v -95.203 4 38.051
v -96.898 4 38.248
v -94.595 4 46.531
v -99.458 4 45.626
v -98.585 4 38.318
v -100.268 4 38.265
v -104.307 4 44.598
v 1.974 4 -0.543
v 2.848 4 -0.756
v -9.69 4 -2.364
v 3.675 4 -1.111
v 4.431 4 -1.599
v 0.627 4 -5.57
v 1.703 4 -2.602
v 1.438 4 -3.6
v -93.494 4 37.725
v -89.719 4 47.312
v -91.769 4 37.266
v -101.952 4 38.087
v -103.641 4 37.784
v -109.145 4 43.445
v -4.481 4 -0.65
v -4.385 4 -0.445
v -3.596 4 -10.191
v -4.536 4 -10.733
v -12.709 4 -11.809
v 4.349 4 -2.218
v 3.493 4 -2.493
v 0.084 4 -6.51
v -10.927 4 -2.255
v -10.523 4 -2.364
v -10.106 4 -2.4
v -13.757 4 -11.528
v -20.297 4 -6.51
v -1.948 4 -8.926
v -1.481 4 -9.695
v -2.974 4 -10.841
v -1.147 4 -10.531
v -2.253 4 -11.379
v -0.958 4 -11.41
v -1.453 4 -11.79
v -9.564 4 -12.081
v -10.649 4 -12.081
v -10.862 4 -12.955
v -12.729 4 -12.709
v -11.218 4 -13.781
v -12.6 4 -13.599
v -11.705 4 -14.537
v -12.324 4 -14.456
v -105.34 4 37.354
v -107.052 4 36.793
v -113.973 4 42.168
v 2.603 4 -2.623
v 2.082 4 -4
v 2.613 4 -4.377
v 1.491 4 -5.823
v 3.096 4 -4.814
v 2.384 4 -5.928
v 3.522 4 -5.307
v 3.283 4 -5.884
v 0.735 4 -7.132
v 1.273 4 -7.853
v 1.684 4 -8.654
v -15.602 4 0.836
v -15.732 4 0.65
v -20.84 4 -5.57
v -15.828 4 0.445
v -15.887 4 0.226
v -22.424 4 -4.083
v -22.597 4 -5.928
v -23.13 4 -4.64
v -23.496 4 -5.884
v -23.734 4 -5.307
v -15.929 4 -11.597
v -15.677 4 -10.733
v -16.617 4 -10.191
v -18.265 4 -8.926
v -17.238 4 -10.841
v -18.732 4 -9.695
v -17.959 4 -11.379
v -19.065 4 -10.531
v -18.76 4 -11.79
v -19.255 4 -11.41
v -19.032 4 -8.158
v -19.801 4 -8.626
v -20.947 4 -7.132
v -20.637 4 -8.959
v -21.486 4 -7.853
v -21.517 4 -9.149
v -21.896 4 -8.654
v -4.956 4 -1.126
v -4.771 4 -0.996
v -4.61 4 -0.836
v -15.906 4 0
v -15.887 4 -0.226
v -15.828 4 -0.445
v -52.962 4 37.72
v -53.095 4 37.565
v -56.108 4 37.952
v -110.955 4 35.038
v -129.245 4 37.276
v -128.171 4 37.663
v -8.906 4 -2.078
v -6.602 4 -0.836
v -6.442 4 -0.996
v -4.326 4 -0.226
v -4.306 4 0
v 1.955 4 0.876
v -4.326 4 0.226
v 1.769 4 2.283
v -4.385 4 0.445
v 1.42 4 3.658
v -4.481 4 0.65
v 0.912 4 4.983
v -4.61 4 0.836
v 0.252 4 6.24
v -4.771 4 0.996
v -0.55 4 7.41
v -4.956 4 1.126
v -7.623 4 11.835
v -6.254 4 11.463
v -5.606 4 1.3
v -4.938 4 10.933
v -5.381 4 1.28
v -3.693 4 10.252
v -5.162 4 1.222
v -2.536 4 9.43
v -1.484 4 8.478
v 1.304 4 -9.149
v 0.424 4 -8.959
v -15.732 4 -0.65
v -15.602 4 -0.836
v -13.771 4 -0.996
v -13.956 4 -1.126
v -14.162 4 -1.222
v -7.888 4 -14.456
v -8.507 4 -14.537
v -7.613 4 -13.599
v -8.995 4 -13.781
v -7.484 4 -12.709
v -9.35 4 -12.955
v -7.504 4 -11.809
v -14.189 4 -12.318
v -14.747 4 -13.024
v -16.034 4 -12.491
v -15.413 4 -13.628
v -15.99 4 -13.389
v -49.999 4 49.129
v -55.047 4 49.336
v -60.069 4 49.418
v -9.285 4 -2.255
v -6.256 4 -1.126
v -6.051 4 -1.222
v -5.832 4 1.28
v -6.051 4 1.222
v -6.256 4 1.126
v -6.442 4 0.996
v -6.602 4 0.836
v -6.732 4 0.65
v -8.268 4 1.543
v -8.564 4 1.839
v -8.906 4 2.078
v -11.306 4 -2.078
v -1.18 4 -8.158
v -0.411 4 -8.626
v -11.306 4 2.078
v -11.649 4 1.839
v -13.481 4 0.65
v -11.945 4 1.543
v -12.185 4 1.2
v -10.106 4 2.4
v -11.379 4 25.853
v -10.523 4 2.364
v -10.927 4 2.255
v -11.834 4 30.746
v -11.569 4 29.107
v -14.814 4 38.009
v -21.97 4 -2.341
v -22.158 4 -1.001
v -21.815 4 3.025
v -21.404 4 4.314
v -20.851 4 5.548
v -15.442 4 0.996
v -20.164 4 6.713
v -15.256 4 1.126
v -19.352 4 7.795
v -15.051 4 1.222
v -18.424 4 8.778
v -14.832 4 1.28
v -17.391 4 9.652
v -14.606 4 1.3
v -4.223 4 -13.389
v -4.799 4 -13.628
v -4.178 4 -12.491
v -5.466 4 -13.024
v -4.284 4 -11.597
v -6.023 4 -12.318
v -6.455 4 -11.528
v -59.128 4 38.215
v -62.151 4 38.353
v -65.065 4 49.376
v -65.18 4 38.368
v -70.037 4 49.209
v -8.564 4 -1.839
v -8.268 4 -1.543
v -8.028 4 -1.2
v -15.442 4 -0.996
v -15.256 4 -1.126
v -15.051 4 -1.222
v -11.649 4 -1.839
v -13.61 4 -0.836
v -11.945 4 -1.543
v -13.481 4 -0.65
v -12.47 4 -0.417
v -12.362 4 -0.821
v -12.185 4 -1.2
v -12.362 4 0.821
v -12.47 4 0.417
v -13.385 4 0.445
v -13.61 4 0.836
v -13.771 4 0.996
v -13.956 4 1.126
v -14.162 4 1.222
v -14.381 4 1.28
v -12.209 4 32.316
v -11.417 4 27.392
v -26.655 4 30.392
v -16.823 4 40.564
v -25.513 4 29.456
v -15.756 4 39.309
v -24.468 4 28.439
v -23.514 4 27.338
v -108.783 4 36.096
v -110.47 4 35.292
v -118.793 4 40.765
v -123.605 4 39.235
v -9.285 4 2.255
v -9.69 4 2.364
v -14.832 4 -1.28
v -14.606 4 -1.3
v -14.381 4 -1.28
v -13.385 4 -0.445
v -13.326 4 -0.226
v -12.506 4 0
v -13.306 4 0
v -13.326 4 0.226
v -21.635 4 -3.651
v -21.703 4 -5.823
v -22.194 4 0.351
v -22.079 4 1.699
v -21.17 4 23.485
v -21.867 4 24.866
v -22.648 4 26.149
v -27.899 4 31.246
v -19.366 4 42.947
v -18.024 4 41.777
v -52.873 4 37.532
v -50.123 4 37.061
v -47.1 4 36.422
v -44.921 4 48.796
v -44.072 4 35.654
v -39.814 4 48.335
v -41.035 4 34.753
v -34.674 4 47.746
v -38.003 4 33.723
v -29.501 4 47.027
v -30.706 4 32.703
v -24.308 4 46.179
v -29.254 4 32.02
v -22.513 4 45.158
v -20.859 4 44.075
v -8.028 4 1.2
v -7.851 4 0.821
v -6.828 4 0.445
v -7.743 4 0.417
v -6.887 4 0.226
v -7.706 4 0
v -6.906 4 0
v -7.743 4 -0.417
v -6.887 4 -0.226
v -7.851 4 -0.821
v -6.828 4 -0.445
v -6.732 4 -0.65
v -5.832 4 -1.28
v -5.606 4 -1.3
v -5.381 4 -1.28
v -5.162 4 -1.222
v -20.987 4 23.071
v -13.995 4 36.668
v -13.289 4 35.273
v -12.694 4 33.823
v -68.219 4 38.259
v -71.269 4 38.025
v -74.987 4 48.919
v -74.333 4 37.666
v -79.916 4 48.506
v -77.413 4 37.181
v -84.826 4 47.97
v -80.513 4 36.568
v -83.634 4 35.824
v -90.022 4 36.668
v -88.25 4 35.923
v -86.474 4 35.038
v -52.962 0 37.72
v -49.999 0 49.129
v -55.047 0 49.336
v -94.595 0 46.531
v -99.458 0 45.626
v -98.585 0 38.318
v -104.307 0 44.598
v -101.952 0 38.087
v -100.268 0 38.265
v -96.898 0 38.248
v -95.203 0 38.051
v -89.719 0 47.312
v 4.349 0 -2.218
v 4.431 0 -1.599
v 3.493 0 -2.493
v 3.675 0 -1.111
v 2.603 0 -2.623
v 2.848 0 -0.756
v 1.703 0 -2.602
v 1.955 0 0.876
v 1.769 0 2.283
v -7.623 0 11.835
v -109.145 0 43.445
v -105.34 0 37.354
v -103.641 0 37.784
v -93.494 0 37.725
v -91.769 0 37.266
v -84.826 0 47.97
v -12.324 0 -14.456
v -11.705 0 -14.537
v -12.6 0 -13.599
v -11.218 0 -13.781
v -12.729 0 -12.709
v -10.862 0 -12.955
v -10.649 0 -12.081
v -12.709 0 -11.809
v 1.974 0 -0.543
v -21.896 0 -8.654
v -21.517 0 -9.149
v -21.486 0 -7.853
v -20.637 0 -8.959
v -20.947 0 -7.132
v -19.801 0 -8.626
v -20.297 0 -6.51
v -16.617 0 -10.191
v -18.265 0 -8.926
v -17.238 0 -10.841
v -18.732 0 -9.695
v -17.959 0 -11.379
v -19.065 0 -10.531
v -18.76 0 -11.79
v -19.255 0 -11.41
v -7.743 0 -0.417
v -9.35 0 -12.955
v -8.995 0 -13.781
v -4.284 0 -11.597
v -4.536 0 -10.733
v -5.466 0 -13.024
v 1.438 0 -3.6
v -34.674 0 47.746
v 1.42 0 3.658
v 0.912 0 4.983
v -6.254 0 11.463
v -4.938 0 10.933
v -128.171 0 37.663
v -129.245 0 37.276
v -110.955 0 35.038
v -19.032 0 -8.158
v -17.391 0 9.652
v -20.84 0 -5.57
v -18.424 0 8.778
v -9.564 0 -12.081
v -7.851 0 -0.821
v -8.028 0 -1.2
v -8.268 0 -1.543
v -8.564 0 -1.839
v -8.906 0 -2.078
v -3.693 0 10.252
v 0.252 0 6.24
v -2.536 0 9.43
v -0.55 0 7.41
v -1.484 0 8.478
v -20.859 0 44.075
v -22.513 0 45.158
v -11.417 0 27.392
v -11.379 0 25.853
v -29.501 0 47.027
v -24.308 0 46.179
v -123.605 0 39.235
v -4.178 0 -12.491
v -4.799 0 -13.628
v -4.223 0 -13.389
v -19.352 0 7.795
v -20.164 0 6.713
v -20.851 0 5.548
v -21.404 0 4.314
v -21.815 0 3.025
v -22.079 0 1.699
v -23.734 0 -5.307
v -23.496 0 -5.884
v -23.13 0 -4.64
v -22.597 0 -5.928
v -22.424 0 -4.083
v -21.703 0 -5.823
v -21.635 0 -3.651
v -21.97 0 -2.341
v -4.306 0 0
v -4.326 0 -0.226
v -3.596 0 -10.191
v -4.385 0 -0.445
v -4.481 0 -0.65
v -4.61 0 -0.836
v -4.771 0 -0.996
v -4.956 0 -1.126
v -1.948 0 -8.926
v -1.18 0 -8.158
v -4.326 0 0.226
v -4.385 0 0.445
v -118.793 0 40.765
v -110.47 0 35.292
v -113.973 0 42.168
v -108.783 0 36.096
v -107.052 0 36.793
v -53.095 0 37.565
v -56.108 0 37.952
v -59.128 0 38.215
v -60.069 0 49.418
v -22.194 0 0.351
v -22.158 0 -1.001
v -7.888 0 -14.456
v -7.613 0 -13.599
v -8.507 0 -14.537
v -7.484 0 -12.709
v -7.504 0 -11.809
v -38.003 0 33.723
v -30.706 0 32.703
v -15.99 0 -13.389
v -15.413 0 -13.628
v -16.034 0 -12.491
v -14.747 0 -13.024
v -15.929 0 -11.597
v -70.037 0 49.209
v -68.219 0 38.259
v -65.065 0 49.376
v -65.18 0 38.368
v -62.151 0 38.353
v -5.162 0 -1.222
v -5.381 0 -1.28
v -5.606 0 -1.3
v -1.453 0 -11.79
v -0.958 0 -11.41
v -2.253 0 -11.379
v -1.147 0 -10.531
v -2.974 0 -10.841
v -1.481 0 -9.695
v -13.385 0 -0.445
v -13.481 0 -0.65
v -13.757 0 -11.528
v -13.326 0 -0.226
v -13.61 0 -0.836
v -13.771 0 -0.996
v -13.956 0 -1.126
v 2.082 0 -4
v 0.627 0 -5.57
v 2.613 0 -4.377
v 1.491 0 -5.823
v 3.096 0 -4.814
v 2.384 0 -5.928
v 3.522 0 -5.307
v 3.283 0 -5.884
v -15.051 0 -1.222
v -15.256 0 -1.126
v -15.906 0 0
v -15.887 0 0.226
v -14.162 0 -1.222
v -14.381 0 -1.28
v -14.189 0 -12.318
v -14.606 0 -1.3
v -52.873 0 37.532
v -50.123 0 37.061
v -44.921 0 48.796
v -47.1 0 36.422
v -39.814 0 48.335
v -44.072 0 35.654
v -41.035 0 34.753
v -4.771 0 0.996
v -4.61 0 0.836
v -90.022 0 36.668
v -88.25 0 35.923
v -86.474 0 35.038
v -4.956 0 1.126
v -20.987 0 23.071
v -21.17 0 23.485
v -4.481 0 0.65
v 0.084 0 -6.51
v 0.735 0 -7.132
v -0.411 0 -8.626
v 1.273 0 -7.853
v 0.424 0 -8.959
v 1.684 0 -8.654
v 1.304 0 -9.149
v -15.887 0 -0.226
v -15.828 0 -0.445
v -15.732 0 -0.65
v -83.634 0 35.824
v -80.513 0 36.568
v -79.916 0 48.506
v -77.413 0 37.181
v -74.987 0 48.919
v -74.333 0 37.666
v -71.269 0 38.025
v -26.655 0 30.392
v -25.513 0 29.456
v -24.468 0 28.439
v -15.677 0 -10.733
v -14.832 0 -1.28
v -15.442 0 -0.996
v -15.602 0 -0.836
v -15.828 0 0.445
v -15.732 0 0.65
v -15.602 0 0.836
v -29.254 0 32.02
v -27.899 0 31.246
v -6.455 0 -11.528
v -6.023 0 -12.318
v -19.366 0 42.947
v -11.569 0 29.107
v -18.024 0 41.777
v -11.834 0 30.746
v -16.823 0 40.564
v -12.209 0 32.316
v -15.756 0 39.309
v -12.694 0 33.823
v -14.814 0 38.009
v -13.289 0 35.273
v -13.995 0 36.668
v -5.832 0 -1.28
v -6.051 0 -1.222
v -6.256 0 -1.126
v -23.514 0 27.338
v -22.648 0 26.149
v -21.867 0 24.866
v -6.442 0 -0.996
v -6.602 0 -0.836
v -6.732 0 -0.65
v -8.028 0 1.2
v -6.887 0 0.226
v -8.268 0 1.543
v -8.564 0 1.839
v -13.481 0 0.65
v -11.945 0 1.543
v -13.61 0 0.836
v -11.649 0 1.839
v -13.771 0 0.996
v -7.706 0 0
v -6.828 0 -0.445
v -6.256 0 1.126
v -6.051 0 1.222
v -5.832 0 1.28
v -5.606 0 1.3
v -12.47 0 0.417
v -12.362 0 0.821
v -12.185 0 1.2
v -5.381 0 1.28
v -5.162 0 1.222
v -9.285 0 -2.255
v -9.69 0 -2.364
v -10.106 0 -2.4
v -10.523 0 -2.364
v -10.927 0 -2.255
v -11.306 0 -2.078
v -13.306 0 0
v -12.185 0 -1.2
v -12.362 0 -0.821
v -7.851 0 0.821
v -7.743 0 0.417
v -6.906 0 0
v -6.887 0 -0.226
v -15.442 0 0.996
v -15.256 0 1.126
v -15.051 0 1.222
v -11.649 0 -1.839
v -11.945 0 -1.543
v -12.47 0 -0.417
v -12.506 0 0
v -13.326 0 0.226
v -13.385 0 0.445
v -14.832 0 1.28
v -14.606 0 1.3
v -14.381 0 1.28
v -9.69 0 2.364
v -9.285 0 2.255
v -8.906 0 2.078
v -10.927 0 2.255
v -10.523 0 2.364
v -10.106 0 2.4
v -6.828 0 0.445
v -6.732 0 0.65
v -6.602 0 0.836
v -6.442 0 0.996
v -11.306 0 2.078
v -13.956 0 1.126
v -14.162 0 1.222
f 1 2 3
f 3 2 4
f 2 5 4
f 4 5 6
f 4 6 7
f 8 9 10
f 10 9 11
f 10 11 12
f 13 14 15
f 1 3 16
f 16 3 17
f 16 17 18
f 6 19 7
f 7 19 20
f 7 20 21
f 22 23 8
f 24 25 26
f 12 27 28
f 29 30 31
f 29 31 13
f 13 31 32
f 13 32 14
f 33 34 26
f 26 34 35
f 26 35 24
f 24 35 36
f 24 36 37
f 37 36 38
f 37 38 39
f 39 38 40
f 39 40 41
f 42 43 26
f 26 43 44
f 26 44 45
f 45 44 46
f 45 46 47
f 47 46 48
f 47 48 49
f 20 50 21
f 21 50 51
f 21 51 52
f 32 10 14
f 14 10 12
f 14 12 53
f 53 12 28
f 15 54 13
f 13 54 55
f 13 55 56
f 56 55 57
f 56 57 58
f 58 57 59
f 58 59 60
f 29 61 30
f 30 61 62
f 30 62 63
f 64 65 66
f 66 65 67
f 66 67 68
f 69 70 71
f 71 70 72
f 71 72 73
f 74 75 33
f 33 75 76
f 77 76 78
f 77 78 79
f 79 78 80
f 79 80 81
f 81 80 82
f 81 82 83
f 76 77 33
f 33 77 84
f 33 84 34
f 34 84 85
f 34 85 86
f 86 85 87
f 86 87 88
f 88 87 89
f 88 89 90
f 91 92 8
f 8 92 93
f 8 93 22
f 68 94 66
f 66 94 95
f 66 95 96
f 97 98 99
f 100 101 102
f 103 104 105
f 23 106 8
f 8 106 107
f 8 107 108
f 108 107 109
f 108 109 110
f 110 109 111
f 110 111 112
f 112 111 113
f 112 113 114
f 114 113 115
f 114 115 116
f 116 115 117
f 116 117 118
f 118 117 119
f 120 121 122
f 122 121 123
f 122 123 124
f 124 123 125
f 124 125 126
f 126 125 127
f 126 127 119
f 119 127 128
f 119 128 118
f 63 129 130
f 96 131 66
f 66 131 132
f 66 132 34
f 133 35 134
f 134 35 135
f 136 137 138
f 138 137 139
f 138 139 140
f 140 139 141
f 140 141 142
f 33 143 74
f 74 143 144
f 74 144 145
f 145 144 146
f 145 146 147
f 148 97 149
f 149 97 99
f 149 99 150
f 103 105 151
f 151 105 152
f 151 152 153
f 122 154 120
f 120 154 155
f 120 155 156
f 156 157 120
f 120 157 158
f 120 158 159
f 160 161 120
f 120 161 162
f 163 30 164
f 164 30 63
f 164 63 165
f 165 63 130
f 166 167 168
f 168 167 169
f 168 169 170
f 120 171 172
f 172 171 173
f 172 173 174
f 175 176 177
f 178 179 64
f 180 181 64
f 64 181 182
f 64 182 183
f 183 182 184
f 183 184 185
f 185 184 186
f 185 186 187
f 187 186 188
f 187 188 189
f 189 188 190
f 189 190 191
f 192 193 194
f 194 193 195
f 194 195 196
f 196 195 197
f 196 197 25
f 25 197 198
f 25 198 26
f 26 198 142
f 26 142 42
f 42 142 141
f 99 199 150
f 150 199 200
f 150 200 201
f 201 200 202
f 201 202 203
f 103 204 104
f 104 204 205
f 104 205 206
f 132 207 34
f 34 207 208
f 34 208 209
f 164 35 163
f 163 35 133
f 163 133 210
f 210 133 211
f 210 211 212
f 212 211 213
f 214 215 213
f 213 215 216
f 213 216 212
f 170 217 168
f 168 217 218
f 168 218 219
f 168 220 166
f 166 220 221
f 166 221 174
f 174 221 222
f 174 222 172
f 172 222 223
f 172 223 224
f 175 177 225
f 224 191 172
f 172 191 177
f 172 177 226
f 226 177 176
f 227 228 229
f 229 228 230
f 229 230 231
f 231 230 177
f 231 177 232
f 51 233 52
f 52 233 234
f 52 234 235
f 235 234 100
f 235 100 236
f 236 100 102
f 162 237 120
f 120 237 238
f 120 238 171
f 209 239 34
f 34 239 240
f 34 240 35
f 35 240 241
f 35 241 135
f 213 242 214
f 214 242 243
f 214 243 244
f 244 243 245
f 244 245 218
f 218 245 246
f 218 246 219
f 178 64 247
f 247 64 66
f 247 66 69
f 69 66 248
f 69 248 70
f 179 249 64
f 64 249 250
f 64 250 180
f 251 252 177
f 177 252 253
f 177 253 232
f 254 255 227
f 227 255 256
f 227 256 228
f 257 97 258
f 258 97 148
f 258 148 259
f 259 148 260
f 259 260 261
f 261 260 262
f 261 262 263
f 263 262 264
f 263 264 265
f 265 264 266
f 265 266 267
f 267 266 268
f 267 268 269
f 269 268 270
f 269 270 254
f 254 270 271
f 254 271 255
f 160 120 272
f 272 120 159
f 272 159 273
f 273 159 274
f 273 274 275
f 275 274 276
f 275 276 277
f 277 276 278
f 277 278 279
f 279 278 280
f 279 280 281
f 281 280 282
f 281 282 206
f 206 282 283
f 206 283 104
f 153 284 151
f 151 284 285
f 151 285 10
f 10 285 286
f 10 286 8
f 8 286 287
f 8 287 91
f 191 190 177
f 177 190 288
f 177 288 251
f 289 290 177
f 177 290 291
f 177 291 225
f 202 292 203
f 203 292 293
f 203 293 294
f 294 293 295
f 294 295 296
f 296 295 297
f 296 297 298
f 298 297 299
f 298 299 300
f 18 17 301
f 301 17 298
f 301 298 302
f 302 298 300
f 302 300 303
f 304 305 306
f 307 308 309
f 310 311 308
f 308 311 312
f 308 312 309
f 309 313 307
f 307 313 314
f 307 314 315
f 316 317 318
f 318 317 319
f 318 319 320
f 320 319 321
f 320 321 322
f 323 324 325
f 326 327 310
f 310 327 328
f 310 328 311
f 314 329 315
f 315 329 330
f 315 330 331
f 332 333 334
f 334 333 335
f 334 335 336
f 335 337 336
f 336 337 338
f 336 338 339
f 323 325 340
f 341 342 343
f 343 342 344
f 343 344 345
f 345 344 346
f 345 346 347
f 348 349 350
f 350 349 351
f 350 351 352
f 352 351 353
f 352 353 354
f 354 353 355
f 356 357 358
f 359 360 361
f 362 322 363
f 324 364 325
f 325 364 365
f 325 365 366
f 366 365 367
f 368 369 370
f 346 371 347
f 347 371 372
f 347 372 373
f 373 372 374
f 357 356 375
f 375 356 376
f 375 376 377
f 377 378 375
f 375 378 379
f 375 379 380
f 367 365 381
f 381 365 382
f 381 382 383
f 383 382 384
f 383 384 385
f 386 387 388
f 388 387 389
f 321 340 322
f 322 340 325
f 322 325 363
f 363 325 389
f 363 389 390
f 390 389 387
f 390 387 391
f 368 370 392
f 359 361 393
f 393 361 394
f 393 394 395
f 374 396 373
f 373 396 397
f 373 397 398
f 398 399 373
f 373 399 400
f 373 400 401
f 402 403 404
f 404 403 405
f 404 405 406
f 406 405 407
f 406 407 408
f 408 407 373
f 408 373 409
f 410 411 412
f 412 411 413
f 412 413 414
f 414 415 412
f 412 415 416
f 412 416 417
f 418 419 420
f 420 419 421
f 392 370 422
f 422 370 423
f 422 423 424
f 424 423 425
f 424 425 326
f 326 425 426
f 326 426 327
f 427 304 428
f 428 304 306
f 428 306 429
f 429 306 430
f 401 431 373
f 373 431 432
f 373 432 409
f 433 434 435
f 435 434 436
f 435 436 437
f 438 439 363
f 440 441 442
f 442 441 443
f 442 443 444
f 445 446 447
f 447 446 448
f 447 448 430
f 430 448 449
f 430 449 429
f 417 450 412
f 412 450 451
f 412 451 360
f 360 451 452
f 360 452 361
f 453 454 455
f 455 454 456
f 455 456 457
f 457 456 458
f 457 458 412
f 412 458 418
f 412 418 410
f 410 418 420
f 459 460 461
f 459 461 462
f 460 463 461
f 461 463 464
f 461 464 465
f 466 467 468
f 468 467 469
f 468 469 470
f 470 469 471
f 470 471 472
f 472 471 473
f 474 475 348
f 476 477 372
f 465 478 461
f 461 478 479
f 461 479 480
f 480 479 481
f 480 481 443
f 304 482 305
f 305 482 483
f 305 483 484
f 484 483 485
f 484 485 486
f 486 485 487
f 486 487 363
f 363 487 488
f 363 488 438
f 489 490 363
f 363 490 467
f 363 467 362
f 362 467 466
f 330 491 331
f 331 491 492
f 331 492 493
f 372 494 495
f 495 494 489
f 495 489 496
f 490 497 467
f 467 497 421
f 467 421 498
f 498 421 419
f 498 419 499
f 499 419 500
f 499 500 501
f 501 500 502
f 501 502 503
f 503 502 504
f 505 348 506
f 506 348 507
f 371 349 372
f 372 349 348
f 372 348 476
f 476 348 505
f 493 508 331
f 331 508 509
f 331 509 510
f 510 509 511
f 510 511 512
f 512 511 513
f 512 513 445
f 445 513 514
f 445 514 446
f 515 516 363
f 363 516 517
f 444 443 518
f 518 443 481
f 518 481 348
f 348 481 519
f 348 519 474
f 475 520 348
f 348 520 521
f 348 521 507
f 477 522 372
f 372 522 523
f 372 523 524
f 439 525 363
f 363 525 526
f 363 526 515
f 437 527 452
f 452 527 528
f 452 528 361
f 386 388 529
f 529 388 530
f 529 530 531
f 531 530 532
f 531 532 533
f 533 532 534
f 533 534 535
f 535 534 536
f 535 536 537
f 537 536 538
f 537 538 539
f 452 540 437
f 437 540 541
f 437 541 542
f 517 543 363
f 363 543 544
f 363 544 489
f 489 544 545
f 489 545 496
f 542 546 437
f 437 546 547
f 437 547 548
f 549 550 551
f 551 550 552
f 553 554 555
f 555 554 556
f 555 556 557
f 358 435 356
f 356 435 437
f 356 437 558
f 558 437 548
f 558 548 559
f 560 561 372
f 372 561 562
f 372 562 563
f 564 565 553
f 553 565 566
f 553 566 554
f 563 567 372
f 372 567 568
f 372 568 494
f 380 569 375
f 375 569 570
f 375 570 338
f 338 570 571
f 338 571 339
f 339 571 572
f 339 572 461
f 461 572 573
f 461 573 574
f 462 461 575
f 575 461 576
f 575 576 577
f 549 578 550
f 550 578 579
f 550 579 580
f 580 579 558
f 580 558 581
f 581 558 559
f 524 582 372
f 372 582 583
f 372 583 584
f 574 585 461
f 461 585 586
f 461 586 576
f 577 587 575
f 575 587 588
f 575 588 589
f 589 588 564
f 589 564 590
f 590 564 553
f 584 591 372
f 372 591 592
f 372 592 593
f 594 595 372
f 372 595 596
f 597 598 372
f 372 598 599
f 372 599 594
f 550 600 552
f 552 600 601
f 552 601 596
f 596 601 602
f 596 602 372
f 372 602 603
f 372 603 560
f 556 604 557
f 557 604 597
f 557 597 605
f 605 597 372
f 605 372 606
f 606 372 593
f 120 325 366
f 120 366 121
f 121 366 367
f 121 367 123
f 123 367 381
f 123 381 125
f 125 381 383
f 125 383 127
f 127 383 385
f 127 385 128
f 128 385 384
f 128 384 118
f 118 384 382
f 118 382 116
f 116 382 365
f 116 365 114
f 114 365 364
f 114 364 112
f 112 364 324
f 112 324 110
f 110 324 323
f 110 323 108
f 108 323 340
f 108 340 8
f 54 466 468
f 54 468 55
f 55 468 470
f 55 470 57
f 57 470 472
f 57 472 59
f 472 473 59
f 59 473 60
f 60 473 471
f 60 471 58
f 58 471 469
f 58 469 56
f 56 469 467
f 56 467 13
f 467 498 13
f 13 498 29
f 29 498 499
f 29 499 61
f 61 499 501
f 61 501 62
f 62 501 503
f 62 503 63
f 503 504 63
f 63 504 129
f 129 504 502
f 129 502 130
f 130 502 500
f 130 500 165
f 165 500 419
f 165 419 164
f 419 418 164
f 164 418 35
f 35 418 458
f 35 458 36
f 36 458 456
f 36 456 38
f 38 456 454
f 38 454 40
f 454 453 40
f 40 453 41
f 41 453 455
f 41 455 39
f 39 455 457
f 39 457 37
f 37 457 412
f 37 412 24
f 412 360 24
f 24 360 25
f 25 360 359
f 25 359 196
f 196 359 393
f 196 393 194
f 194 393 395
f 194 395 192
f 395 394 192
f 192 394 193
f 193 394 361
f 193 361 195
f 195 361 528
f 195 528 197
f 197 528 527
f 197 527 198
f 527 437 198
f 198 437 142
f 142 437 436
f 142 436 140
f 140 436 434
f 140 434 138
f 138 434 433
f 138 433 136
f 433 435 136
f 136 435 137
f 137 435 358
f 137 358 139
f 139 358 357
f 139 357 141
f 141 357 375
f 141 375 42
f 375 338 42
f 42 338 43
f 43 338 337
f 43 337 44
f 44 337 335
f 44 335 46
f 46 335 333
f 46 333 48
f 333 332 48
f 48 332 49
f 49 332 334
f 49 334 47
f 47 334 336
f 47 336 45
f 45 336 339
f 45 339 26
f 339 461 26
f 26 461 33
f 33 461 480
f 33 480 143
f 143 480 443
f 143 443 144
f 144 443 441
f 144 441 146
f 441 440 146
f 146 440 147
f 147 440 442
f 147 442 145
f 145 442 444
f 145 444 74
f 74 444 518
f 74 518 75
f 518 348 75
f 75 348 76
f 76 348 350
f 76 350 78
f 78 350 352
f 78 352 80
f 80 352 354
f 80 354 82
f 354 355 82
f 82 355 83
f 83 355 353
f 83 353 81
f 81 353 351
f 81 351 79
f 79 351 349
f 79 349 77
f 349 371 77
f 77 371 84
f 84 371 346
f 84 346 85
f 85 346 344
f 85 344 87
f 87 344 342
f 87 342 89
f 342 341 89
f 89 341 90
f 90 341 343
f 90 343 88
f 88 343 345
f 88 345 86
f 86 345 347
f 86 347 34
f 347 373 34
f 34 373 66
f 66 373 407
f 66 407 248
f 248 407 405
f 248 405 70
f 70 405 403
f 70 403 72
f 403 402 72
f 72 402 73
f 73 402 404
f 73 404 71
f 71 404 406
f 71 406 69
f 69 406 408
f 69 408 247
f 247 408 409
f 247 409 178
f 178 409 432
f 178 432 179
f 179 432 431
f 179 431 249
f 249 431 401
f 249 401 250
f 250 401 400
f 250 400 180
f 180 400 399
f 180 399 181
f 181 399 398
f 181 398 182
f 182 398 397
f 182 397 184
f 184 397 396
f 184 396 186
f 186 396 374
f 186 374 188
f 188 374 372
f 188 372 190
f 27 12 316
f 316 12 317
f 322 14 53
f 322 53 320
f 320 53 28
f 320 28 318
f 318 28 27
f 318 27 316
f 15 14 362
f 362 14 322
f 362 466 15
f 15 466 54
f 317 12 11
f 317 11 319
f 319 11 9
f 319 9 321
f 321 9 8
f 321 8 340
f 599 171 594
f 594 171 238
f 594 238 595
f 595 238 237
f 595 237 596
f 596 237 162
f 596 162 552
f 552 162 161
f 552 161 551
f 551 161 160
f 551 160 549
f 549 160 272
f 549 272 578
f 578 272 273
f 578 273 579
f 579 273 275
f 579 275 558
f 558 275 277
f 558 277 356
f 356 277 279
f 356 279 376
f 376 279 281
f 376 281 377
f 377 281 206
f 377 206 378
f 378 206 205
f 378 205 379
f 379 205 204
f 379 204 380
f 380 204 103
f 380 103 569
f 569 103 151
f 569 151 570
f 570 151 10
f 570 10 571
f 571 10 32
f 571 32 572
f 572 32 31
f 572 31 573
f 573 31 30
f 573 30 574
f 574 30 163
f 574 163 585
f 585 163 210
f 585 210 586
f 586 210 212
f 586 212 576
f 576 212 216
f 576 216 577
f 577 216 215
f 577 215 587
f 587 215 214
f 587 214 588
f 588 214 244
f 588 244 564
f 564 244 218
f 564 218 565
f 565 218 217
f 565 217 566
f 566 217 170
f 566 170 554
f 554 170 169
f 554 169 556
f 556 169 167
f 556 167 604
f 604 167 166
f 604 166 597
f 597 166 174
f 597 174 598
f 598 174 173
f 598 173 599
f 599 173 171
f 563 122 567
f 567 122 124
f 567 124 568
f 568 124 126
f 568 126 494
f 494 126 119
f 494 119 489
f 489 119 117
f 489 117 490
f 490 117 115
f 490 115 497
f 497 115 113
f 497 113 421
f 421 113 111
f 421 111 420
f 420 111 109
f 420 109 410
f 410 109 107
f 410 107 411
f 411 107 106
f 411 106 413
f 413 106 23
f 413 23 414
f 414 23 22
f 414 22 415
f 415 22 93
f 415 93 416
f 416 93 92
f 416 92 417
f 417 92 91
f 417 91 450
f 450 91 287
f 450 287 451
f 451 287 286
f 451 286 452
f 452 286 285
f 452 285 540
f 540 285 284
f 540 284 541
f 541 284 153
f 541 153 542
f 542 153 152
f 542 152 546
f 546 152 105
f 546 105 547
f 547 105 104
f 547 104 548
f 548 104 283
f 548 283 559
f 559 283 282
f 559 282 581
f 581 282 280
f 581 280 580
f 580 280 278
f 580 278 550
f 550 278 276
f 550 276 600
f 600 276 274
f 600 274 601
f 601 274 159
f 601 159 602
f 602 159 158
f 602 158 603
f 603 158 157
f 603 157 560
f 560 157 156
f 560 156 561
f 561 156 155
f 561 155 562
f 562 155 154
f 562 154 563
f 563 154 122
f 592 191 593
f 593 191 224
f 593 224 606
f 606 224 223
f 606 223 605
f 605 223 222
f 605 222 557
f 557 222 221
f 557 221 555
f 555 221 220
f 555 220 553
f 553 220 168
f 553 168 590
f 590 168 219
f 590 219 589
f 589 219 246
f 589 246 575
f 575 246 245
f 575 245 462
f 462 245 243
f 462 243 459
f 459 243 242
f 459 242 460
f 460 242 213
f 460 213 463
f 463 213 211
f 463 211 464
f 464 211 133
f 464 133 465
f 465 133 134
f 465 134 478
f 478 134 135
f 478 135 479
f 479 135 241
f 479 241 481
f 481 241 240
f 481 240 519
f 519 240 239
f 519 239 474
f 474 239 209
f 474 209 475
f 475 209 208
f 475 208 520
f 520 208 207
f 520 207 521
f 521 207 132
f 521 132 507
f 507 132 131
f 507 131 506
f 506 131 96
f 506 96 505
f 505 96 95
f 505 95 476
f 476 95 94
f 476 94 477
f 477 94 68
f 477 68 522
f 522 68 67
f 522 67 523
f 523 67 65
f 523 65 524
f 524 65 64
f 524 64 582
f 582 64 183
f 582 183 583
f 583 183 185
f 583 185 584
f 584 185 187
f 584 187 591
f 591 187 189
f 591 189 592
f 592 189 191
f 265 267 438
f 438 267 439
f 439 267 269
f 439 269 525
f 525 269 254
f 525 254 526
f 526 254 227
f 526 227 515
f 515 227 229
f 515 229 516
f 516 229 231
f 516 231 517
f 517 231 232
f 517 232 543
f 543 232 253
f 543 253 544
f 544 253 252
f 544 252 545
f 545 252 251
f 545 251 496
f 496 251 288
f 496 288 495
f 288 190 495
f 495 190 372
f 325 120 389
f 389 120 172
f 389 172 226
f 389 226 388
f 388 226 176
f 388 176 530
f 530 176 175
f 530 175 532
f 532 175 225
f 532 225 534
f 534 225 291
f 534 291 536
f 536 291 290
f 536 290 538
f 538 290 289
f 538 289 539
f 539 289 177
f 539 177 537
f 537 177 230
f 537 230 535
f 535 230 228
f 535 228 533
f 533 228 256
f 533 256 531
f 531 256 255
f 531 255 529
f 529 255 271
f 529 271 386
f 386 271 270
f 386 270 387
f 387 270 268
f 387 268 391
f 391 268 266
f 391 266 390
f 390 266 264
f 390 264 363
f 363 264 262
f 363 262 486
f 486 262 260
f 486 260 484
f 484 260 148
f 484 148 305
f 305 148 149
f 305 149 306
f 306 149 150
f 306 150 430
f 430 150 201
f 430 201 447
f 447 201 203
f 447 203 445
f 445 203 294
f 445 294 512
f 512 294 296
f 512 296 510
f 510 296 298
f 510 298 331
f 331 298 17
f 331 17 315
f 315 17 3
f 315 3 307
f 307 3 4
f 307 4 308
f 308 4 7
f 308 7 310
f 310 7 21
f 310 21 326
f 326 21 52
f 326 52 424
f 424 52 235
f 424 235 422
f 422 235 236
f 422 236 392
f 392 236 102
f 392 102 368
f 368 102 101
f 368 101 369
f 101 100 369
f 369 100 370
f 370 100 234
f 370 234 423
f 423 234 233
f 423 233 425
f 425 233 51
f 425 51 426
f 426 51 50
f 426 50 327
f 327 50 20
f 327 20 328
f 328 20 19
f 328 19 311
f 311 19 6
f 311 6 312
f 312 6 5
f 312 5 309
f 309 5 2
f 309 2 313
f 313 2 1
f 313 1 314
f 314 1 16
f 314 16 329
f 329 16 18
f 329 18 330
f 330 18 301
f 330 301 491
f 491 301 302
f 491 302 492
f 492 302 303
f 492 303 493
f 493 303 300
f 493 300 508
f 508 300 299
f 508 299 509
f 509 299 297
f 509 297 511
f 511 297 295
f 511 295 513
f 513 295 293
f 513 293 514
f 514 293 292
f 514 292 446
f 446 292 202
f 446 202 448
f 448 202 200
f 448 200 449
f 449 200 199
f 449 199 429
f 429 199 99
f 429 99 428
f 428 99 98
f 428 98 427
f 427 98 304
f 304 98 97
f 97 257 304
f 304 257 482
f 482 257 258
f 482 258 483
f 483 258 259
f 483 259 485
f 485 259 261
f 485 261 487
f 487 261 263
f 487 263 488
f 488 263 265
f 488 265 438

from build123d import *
from build123d.topology import SkipClean

# Parameters (mm, degrees)
SKETCH1_R           = 1.5
BOSS_EXTRUDE1_DEPTH = 4
SKETCH3_R           = 1.75
BOSS_EXTRUDE2_DEPTH = 4
CUT_EXTRUDE1_START  = -4
CUT_EXTRUDE1_DEPTH  = 4
CUT_EXTRUDE2_REACH  = 49.073
SKETCH5_R           = 1.3
SKETCH5_R_2         = 2.4
BOSS_EXTRUDE3_START = -4
BOSS_EXTRUDE3_DEPTH = 4
CUT_EXTRUDE3_START  = -10
SKETCH6_3_R         = 1.75
CUT_EXTRUDE3_DEPTH  = 10


with BuildPart() as part:
    # Sketch1 → Boss-Extrude1 (new body)
    with BuildSketch(Plane(origin=(0, 0, 0), x_dir=(1, 0, 0), z_dir=(0, 1, 0))):
        with BuildLine():
            Line((20.643657446, 4), (2.081641936, 4))
            ThreePointArc((2.081641936, 4), (2.861028333, 4.588201733), (3.521749436, 5.30713988))
            ThreePointArc((3.521749436, 5.30713988), (3.405395609, 5.596745198), (3.282888305, 5.883801663))
            ThreePointArc((3.282888305, 5.883801663), (1.93527598, 5.894040025), (0.627094961, 5.57027124))
            ThreePointArc((0.627094961, 5.57027124), (0.366286148, 6.046375), (0.084372603, 6.510293938))
            ThreePointArc((0.084372603, 6.510293938), (1.018855105, 7.48132754), (1.683794586, 8.65351323))
            ThreePointArc((1.683794586, 8.65351323), (1.496450048, 8.903135899), (1.303821399, 9.148703928))
            ThreePointArc((1.303821399, 9.148703928), (-0.000522033, 8.809805691), (-1.180330337, 8.158486898))
            ThreePointArc((-1.180330337, 8.158486898), (-1.555477026, 8.550865528), (-1.947855656, 8.926012217))
            ThreePointArc((-1.947855656, 8.926012217), (-1.296536862, 10.105820521), (-0.957638625, 11.410163953))
            ThreePointArc((-0.957638625, 11.410163953), (-1.203206655, 11.602792602), (-1.452829324, 11.79013714))
            ThreePointArc((-1.452829324, 11.79013714), (-2.625015014, 11.125197659), (-3.596048616, 10.190715157))
            ThreePointArc((-3.596048616, 10.190715157), (-4.059967554, 10.472628702), (-4.536071314, 10.733437515))
            ThreePointArc((-4.536071314, 10.733437515), (-4.212302529, 12.041618533), (-4.222540891, 13.389230859))
            ThreePointArc((-4.222540891, 13.389230859), (-4.509597355, 13.511738163), (-4.799202674, 13.62809199))
            ThreePointArc((-4.799202674, 13.62809199), (-5.759348103, 12.682425791), (-6.455432668, 11.528463019))
            ThreePointArc((-6.455432668, 11.528463019), (-6.976508546, 11.680699536), (-7.503891752, 11.809396783))
            ThreePointArc((-7.503891752, 11.809396783), (-7.529737283, 13.156800143), (-7.888414517, 14.455843809))
            ThreePointArc((-7.888414517, 14.455843809), (-8.197396993, 14.499881098), (-8.507248835, 14.537314892))
            ThreePointArc((-8.507248835, 14.537314892), (-9.18992168, 13.375367565), (-9.563620196, 12.080565177))
            ThreePointArc((-9.563620196, 12.080565177), (-10.106342554, 12.09275), (-10.649064912, 12.080565177))
            ThreePointArc((-10.649064912, 12.080565177), (-11.022763428, 13.375367565), (-11.705436272, 14.537314892))
            ThreePointArc((-11.705436272, 14.537314892), (-12.015288115, 14.499881098), (-12.324270591, 14.455843809))
            ThreePointArc((-12.324270591, 14.455843809), (-12.682947825, 13.156800143), (-12.708793355, 11.809396783))
            ThreePointArc((-12.708793355, 11.809396783), (-13.236176561, 11.680699536), (-13.757252439, 11.528463019))
            ThreePointArc((-13.757252439, 11.528463019), (-14.453337005, 12.682425791), (-15.413482434, 13.62809199))
            ThreePointArc((-15.413482434, 13.62809199), (-15.703087752, 13.511738163), (-15.990144217, 13.389230859))
            ThreePointArc((-15.990144217, 13.389230859), (-16.000382579, 12.041618533), (-15.676613793, 10.733437515))
            ThreePointArc((-15.676613793, 10.733437515), (-16.152717554, 10.472628702), (-16.616636492, 10.190715157))
            ThreePointArc((-16.616636492, 10.190715157), (-17.587670094, 11.125197659), (-18.759855783, 11.79013714))
            ThreePointArc((-18.759855783, 11.79013714), (-19.009478453, 11.602792602), (-19.255046482, 11.410163953))
            ThreePointArc((-19.255046482, 11.410163953), (-18.916148245, 10.105820521), (-18.264829452, 8.926012217))
            ThreePointArc((-18.264829452, 8.926012217), (-18.657208082, 8.550865528), (-19.032354771, 8.158486898))
            ThreePointArc((-19.032354771, 8.158486898), (-20.212163074, 8.809805691), (-21.516506507, 9.148703928))
            ThreePointArc((-21.516506507, 9.148703928), (-21.709135156, 8.903135899), (-21.896479694, 8.65351323))
            ThreePointArc((-21.896479694, 8.65351323), (-21.231540213, 7.48132754), (-20.297057711, 6.510293938))
            ThreePointArc((-20.297057711, 6.510293938), (-20.578971255, 6.046375), (-20.839780068, 5.57027124))
            ThreePointArc((-20.839780068, 5.57027124), (-22.147961087, 5.894040025), (-23.495573413, 5.883801663))
            ThreePointArc((-23.495573413, 5.883801663), (-23.618080717, 5.596745198), (-23.734434544, 5.30713988))
            ThreePointArc((-23.734434544, 5.30713988), (-22.788768345, 4.346994451), (-21.634805572, 3.650909885))
            ThreePointArc((-21.634805572, 3.650909885), (-21.78704209, 3.129834008), (-21.915739337, 2.602450802))
            ThreePointArc((-21.915739337, 2.602450802), (-23.263142697, 2.576605271), (-24.562186363, 2.217928037))
            ThreePointArc((-24.562186363, 2.217928037), (-24.606223651, 1.908945561), (-24.643657446, 1.599093719))
            ThreePointArc((-24.643657446, 1.599093719), (-23.481710119, 0.916420874), (-22.186907731, 0.542722358))
            ThreePointArc((-22.186907731, 0.542722358), (-22.199092554, 0), (-22.186907731, -0.542722358))
            ThreePointArc((-22.186907731, -0.542722358), (-23.481710119, -0.916420874), (-24.643657446, -1.599093719))
            ThreePointArc((-24.643657446, -1.599093719), (-24.606223651, -1.908945561), (-24.562186363, -2.217928037))
            ThreePointArc((-24.562186363, -2.217928037), (-23.263142697, -2.576605271), (-21.915739337, -2.602450802))
            ThreePointArc((-21.915739337, -2.602450802), (-21.78704209, -3.129834008), (-21.634805572, -3.650909885))
            ThreePointArc((-21.634805572, -3.650909885), (-22.788768345, -4.346994451), (-23.734434544, -5.30713988))
            ThreePointArc((-23.734434544, -5.30713988), (-23.618080717, -5.596745198), (-23.495573413, -5.883801663))
            ThreePointArc((-23.495573413, -5.883801663), (-22.147961087, -5.894040025), (-20.839780068, -5.57027124))
            ThreePointArc((-20.839780068, -5.57027124), (-20.578971255, -6.046375), (-20.297057711, -6.510293938))
            ThreePointArc((-20.297057711, -6.510293938), (-21.231540213, -7.48132754), (-21.896479694, -8.65351323))
            ThreePointArc((-21.896479694, -8.65351323), (-21.709135156, -8.903135899), (-21.516506507, -9.148703928))
            ThreePointArc((-21.516506507, -9.148703928), (-20.212163074, -8.809805691), (-19.032354771, -8.158486898))
            ThreePointArc((-19.032354771, -8.158486898), (-18.657208082, -8.550865528), (-18.264829452, -8.926012217))
            ThreePointArc((-18.264829452, -8.926012217), (-18.916148245, -10.105820521), (-19.255046482, -11.410163953))
            ThreePointArc((-19.255046482, -11.410163953), (-19.009478453, -11.602792602), (-18.759855783, -11.79013714))
            ThreePointArc((-18.759855783, -11.79013714), (-17.587670094, -11.125197659), (-16.616636492, -10.190715157))
            ThreePointArc((-16.616636492, -10.190715157), (-16.152717554, -10.472628702), (-15.676613793, -10.733437515))
            ThreePointArc((-15.676613793, -10.733437515), (-16.000382579, -12.041618533), (-15.990144217, -13.389230859))
            ThreePointArc((-15.990144217, -13.389230859), (-15.703087752, -13.511738163), (-15.413482434, -13.62809199))
            ThreePointArc((-15.413482434, -13.62809199), (-14.453337005, -12.682425791), (-13.757252439, -11.528463019))
            ThreePointArc((-13.757252439, -11.528463019), (-13.236176561, -11.680699536), (-12.708793355, -11.809396783))
            ThreePointArc((-12.708793355, -11.809396783), (-12.682947825, -13.156800143), (-12.324270591, -14.455843809))
            ThreePointArc((-12.324270591, -14.455843809), (-12.015288115, -14.499881098), (-11.705436272, -14.537314892))
            ThreePointArc((-11.705436272, -14.537314892), (-11.022763428, -13.375367565), (-10.649064912, -12.080565177))
            ThreePointArc((-10.649064912, -12.080565177), (-10.106342554, -12.09275), (-9.563620196, -12.080565177))
            ThreePointArc((-9.563620196, -12.080565177), (-9.18992168, -13.375367565), (-8.507248835, -14.537314892))
            ThreePointArc((-8.507248835, -14.537314892), (-8.197396993, -14.499881098), (-7.888414517, -14.455843809))
            ThreePointArc((-7.888414517, -14.455843809), (-7.529737283, -13.156800143), (-7.503891752, -11.809396783))
            ThreePointArc((-7.503891752, -11.809396783), (-6.976508546, -11.680699536), (-6.455432668, -11.528463019))
            ThreePointArc((-6.455432668, -11.528463019), (-5.759348103, -12.682425791), (-4.799202674, -13.62809199))
            ThreePointArc((-4.799202674, -13.62809199), (-4.509597355, -13.511738163), (-4.222540891, -13.389230859))
            ThreePointArc((-4.222540891, -13.389230859), (-4.212302529, -12.041618533), (-4.536071314, -10.733437515))
            ThreePointArc((-4.536071314, -10.733437515), (-4.059967554, -10.472628702), (-3.596048616, -10.190715157))
            ThreePointArc((-3.596048616, -10.190715157), (-2.625015014, -11.125197659), (-1.452829324, -11.79013714))
            ThreePointArc((-1.452829324, -11.79013714), (-1.203206655, -11.602792602), (-0.957638625, -11.410163953))
            ThreePointArc((-0.957638625, -11.410163953), (-1.296536862, -10.105820521), (-1.947855656, -8.926012217))
            ThreePointArc((-1.947855656, -8.926012217), (-1.555477026, -8.550865528), (-1.180330337, -8.158486898))
            ThreePointArc((-1.180330337, -8.158486898), (-0.000522033, -8.809805691), (1.303821399, -9.148703928))
            ThreePointArc((1.303821399, -9.148703928), (1.496450048, -8.903135899), (1.683794586, -8.65351323))
            ThreePointArc((1.683794586, -8.65351323), (1.018855105, -7.48132754), (0.084372603, -6.510293938))
            ThreePointArc((0.084372603, -6.510293938), (0.366286148, -6.046375), (0.627094961, -5.57027124))
            ThreePointArc((0.627094961, -5.57027124), (1.93527598, -5.894040025), (3.282888305, -5.883801663))
            ThreePointArc((3.282888305, -5.883801663), (3.405395609, -5.596745198), (3.521749436, -5.30713988))
            ThreePointArc((3.521749436, -5.30713988), (2.861028333, -4.588201733), (2.081641936, -4))
            Line((2.081641936, -4), (20.643657446, -4))
            ThreePointArc((20.643657446, -4), (24.643657446, 0), (20.643657446, 4))
        make_face()
        with Locations(Location((-10.106342554, 0, 0), (0, 0, 270))):
            Circle(SKETCH1_R, mode=Mode.SUBTRACT)
        with Locations(Location((20.643657446, 0, 0), (0, 0, 270))):
            Circle(SKETCH1_R, mode=Mode.SUBTRACT)
    extrude(amount=BOSS_EXTRUDE1_DEPTH)

    # Sketch3 → Boss-Extrude2 (add)
    with BuildSketch(Plane(origin=(0, 4, 0), x_dir=(1, 0, 0), z_dir=(0, 1, 0))):
        with BuildLine():
            ThreePointArc((-9.584237785, -3.965779445), (-14.072121999, -0.522104769), (-10.628447323, 3.965779445))
            Line((-10.628447323, 3.965779445), (-41.11537681, -0.047900965))
            ThreePointArc((-41.11537681, -0.047900965), (-44.559051487, -4.53578518), (-40.071167272, -7.979459856))
            Line((-40.071167272, -7.979459856), (-9.584237785, -3.965779445))
        make_face()
        with Locations(Location((-40.593272041, -4.013680411, 0), (0, 0, 270))):
            Circle(SKETCH3_R, mode=Mode.SUBTRACT)
    extrude(amount=-BOSS_EXTRUDE2_DEPTH)

    # Sketch4 → Cut-Extrude1 (cut)
    with SkipClean():  # the faces are left unmerged after this step: merging them gives an invalid solid
        with BuildSketch(Plane(origin=(0, 4, 0), x_dir=(1, 0, 0), z_dir=(0, 1, 0)).offset(CUT_EXTRUDE1_START)):
            with BuildLine():
                ThreePointArc((20.643657446, -4), (24.643657446, 0), (20.643657446, 4))
                Line((20.643657446, 4), (2.081641936, 4))
                Line((2.081641936, 4), (1.43808022, 3.600125745))
                ThreePointArc((1.43808022, 3.600125745), (1.581217534, 3.104116905), (1.70305423, 2.602450802))
                ThreePointArc((1.70305423, 2.602450802), (3.050457589, 2.576605271), (4.349501255, 2.217928037))
                ThreePointArc((4.349501255, 2.217928037), (4.393538544, 1.908945561), (4.430972339, 1.599093719))
                ThreePointArc((4.430972339, 1.599093719), (3.269025011, 0.916420874), (1.974222624, 0.542722358))
                ThreePointArc((1.974222624, 0.542722358), (1.70305423, -2.602450802), (0.627094961, -5.57027124))
                ThreePointArc((0.627094961, -5.57027124), (1.93527598, -5.894040025), (3.282888305, -5.883801663))
                ThreePointArc((3.282888305, -5.883801663), (3.405395609, -5.596745198), (3.521749436, -5.30713988))
                ThreePointArc((3.521749436, -5.30713988), (2.861028333, -4.588201733), (2.081641936, -4))
                Line((2.081641936, -4), (20.643657446, -4))
            make_face()
            with BuildLine():
                ThreePointArc((1.683794586, -8.65351323), (1.018855105, -7.48132754), (0.084372603, -6.510293938))
                ThreePointArc((0.084372603, -6.510293938), (-0.512518948, -7.361599771), (-1.180330337, -8.158486898))
                ThreePointArc((-1.180330337, -8.158486898), (-0.000522033, -8.809805691), (1.303821399, -9.148703928))
                ThreePointArc((1.303821399, -9.148703928), (1.496450048, -8.903135899), (1.683794586, -8.65351323))
            make_face()
            with BuildLine():
                ThreePointArc((-0.957638625, -11.410163953), (-1.296536862, -10.105820521), (-1.947855656, -8.926012217))
                ThreePointArc((-1.947855656, -8.926012217), (-2.744742783, -9.593823606), (-3.596048616, -10.190715157))
                ThreePointArc((-3.596048616, -10.190715157), (-2.625015014, -11.125197659), (-1.452829324, -11.79013714))
                ThreePointArc((-1.452829324, -11.79013714), (-1.203206655, -11.602792602), (-0.957638625, -11.410163953))
            make_face()
            with BuildLine():
                ThreePointArc((-4.222540891, -13.389230859), (-4.212302529, -12.041618533), (-4.536071314, -10.733437515))
                ThreePointArc((-4.536071314, -10.733437515), (-5.478647477, -11.172244217), (-6.455432668, -11.528463019))
                ThreePointArc((-6.455432668, -11.528463019), (-5.759348103, -12.682425791), (-4.799202674, -13.62809199))
                ThreePointArc((-4.799202674, -13.62809199), (-4.509597355, -13.511738163), (-4.222540891, -13.389230859))
            make_face()
            with BuildLine():
                ThreePointArc((-7.888414517, -14.455843809), (-7.529737283, -13.156800143), (-7.503891752, -11.809396783))
                ThreePointArc((-7.503891752, -11.809396783), (-8.527921943, -11.989294847), (-9.563620196, -12.080565177))
                ThreePointArc((-9.563620196, -12.080565177), (-9.18992168, -13.375367565), (-8.507248835, -14.537314892))
                ThreePointArc((-8.507248835, -14.537314892), (-8.197396993, -14.499881098), (-7.888414517, -14.455843809))
            make_face()
            with BuildLine():
                ThreePointArc((-11.705436272, -14.537314892), (-11.022763428, -13.375367565), (-10.649064912, -12.080565177))
                ThreePointArc((-10.649064912, -12.080565177), (-11.684763165, -11.989294847), (-12.708793355, -11.809396783))
                ThreePointArc((-12.708793355, -11.809396783), (-12.682947825, -13.156800143), (-12.324270591, -14.455843809))
                ThreePointArc((-12.324270591, -14.455843809), (-12.015288115, -14.499881098), (-11.705436272, -14.537314892))
            make_face()
            with BuildLine():
                ThreePointArc((-15.413482434, -13.62809199), (-14.453337005, -12.682425791), (-13.757252439, -11.528463019))
                ThreePointArc((-13.757252439, -11.528463019), (-14.734037631, -11.172244217), (-15.676613793, -10.733437515))
                ThreePointArc((-15.676613793, -10.733437515), (-16.000382579, -12.041618533), (-15.990144217, -13.389230859))
                ThreePointArc((-15.990144217, -13.389230859), (-15.703087752, -13.511738163), (-15.413482434, -13.62809199))
            make_face()
            with BuildLine():
                ThreePointArc((-18.759855783, -11.79013714), (-17.587670094, -11.125197659), (-16.616636492, -10.190715157))
                ThreePointArc((-16.616636492, -10.190715157), (-17.467942324, -9.593823606), (-18.264829452, -8.926012217))
                ThreePointArc((-18.264829452, -8.926012217), (-18.916148245, -10.105820521), (-19.255046482, -11.410163953))
                ThreePointArc((-19.255046482, -11.410163953), (-19.009478453, -11.602792602), (-18.759855783, -11.79013714))
            make_face()
            with BuildLine():
                ThreePointArc((-21.516506507, -9.148703928), (-20.212163074, -8.809805691), (-19.032354771, -8.158486898))
                ThreePointArc((-19.032354771, -8.158486898), (-19.70016616, -7.361599771), (-20.297057711, -6.510293938))
                ThreePointArc((-20.297057711, -6.510293938), (-21.231540213, -7.48132754), (-21.896479694, -8.65351323))
                ThreePointArc((-21.896479694, -8.65351323), (-21.709135156, -8.903135899), (-21.516506507, -9.148703928))
            make_face()
            with BuildLine():
                ThreePointArc((-21.942853375, 2.47620963), (-21.92946485, 2.539366405), (-21.915739337, 2.602450802))
                ThreePointArc((-21.915739337, 2.602450802), (-23.263142697, 2.576605271), (-24.562186363, 2.217928037))
                ThreePointArc((-24.562186363, 2.217928037), (-24.56889027, 2.173784387), (-24.575459377, 2.129620475))
                Line((-24.575459377, 2.129620475), (-21.942853375, 2.47620963))
            make_face()
            with BuildLine():
                ThreePointArc((-23.495573413, -5.883801663), (-22.147961087, -5.894040025), (-20.839780068, -5.57027124))
                ThreePointArc((-20.839780068, -5.57027124), (-20.869365339, -5.512888815), (-20.898643838, -5.455349261))
                Line((-20.898643838, -5.455349261), (-23.531249839, -5.801938416))
                ThreePointArc((-23.531249839, -5.801938416), (-23.513474108, -5.842897269), (-23.495573413, -5.883801663))
            make_face()
        extrude(amount=CUT_EXTRUDE1_DEPTH, mode=Mode.SUBTRACT)

    # Sketch5 → Cut-Extrude2 (cut, up to next)
    with BuildSketch(Plane(origin=(0, 4, 0), x_dir=(1, 0, 0), z_dir=(0, 1, 0)), mode=Mode.PRIVATE) as cut_extrude2_sk1:
        with Locations(Location((-14.606342554, 0, 0), (0, 0, 270))):
            Circle(SKETCH5_R)
    cut_extrude2_tool1 = extrude(cut_extrude2_sk1.sketch, amount=-CUT_EXTRUDE2_REACH, mode=Mode.PRIVATE) & part.part
    # Sketch5 → Cut-Extrude2 (cut, up to next)
    with BuildSketch(Plane(origin=(0, 4, 0), x_dir=(1, 0, 0), z_dir=(0, 1, 0)), mode=Mode.PRIVATE) as cut_extrude2_sk2:
        with Locations(Location((-5.606342554, 0, 0), (0, 0, 270))):
            Circle(SKETCH5_R)
    cut_extrude2_tool2 = extrude(cut_extrude2_sk2.sketch, amount=-CUT_EXTRUDE2_REACH, mode=Mode.PRIVATE) & part.part
    # Sketch5 → Cut-Extrude2 (cut, up to next)
    with BuildSketch(Plane(origin=(0, 4, 0), x_dir=(1, 0, 0), z_dir=(0, 1, 0)), mode=Mode.PRIVATE) as cut_extrude2_sk3:
        with Locations(Location((-10.106342554, 0, 0), (0, 0, 270))):
            Circle(SKETCH5_R_2)
    cut_extrude2_tool3 = extrude(cut_extrude2_sk3.sketch, amount=-CUT_EXTRUDE2_REACH, mode=Mode.PRIVATE) & part.part
    add(cut_extrude2_tool1.solids().sort_by_distance((-14.606343, 4, 0))[0], mode=Mode.SUBTRACT)
    add(cut_extrude2_tool2.solids().sort_by_distance((-5.606343, 4, 0))[0], mode=Mode.SUBTRACT)
    add(cut_extrude2_tool3.solids().sort_by_distance((-10.106343, 4, 0))[0], mode=Mode.SUBTRACT)

    # Sketch6 → Boss-Extrude3 (add)
    with SkipClean():  # the faces are left unmerged after this step: merging them gives an invalid solid
        with BuildSketch(Plane(origin=(0, 4, 0), x_dir=(1, 0, 0), z_dir=(0, 1, 0)).offset(BOSS_EXTRUDE3_START)):
            with BuildLine():
                ThreePointArc((-52.962051912, -37.720188973), (-53.029457116, -37.643685191), (-53.094890456, -37.565488207))
                add(Edge.make_bspline(
                    [(-53.094890456, -37.565488207), (-69.574492007, -40.022931453), (-86.473755851, -35.03783058)],
                    knots=[0.398617796, 0.398617796, 0.398617796, 1, 1, 1], degree=2))
                add(Edge.make_bspline(
                    [(-86.473755851, -35.03783058), (-98.679286779, -41.59959414), (-110.954647006, -35.03783058)],
                    knots=[0, 0, 0, 1, 1, 1], degree=2))
                Line((-110.954647006, -35.03783058), (-129.244737731, -37.275679444))
                add(Edge.make_bspline(
                    [(-24.307799862, -46.178856242), (-78.550492212, -55.693347591), (-129.244737731, -37.275679444)],
                    knots=[0.002349817, 0.002349817, 0.002349817, 1, 1, 1], degree=2))
                add(Edge.make_bspline(
                    [(-24.307799862, -46.178856242), (-11.325946224, -39.297851738), (-11.379295158, -25.85254802)],
                    knots=[0, 0, 0, 1, 1, 1], degree=2))
                Line((-11.379295158, -25.85254802), (-10.692878437, -23.290805939))
                Line((-10.692878437, -23.290805939), (-7.62332727, -11.83508503))
                ThreePointArc((-7.62332727, -11.83508503), (-7.874404331, -11.88499282), (-8.126481564, -11.929574721))
                ThreePointArc((-8.126481564, -11.929574721), (-12.992916327, -11.743180762), (-17.391194669, -9.652229391))
                Line((-17.391194669, -9.652229391), (-20.453641162, -21.0814353))
                Line((-20.453641162, -21.0814353), (-20.986801846, -23.071218061))
                add(Edge.make_bspline(
                    [(-30.706376797, -32.703441208), (-23.88923072, -29.810908187), (-20.986801846, -23.071218061)],
                    knots=[0, 0, 0, 1, 1, 1], degree=2))
                Line((-30.706376797, -32.703441208), (-31.121289752, -32.76140473))
                Line((-31.121289752, -32.76140473), (-38.003060246, -33.722791093))
                add(Edge.make_bspline(
                    [(-38.003060246, -33.722791093), (-45.394684007, -36.393930701), (-52.872751681, -37.532021826)],
                    knots=[0.121623856, 0.121623856, 0.121623856, 0.394564246, 0.394564246, 0.394564246], degree=2))
                ThreePointArc((-52.872751681, -37.532021826), (-52.918626749, -37.625524062), (-52.962051912, -37.720188973))
            make_face()
        extrude(amount=BOSS_EXTRUDE3_DEPTH)

    # Sketch6<3> → Cut-Extrude3 (cut)
    with SkipClean():  # the faces are left unmerged after this step: merging them gives an invalid solid
        with BuildSketch(Plane(origin=(0, 4, 0), x_dir=(1, 0, 0), z_dir=(0, 1, 0)).offset(CUT_EXTRUDE3_START)):
            with BuildLine():
                Line((-40.071167272, -7.979459856), (-20.898643838, -5.455349261))
                ThreePointArc((-20.898643838, -5.455349261), (-22.095637401, -1.578420611), (-21.942853375, 2.47620963))
                Line((-21.942853375, 2.47620963), (-41.11537681, -0.047900965))
                ThreePointArc((-41.11537681, -0.047900965), (-44.592679619, -4.082521016), (-40.978584416, -7.995078956))
                ThreePointArc((-40.978584416, -7.995078956), (-40.524431436, -8.013087988), (-40.071167272, -7.979459856))
            make_face()
            with Locations((-40.593272041, -4.013680411)):
                Circle(SKETCH6_3_R, mode=Mode.SUBTRACT)
        extrude(amount=CUT_EXTRUDE3_DEPTH, mode=Mode.SUBTRACT)


solid = part.part
